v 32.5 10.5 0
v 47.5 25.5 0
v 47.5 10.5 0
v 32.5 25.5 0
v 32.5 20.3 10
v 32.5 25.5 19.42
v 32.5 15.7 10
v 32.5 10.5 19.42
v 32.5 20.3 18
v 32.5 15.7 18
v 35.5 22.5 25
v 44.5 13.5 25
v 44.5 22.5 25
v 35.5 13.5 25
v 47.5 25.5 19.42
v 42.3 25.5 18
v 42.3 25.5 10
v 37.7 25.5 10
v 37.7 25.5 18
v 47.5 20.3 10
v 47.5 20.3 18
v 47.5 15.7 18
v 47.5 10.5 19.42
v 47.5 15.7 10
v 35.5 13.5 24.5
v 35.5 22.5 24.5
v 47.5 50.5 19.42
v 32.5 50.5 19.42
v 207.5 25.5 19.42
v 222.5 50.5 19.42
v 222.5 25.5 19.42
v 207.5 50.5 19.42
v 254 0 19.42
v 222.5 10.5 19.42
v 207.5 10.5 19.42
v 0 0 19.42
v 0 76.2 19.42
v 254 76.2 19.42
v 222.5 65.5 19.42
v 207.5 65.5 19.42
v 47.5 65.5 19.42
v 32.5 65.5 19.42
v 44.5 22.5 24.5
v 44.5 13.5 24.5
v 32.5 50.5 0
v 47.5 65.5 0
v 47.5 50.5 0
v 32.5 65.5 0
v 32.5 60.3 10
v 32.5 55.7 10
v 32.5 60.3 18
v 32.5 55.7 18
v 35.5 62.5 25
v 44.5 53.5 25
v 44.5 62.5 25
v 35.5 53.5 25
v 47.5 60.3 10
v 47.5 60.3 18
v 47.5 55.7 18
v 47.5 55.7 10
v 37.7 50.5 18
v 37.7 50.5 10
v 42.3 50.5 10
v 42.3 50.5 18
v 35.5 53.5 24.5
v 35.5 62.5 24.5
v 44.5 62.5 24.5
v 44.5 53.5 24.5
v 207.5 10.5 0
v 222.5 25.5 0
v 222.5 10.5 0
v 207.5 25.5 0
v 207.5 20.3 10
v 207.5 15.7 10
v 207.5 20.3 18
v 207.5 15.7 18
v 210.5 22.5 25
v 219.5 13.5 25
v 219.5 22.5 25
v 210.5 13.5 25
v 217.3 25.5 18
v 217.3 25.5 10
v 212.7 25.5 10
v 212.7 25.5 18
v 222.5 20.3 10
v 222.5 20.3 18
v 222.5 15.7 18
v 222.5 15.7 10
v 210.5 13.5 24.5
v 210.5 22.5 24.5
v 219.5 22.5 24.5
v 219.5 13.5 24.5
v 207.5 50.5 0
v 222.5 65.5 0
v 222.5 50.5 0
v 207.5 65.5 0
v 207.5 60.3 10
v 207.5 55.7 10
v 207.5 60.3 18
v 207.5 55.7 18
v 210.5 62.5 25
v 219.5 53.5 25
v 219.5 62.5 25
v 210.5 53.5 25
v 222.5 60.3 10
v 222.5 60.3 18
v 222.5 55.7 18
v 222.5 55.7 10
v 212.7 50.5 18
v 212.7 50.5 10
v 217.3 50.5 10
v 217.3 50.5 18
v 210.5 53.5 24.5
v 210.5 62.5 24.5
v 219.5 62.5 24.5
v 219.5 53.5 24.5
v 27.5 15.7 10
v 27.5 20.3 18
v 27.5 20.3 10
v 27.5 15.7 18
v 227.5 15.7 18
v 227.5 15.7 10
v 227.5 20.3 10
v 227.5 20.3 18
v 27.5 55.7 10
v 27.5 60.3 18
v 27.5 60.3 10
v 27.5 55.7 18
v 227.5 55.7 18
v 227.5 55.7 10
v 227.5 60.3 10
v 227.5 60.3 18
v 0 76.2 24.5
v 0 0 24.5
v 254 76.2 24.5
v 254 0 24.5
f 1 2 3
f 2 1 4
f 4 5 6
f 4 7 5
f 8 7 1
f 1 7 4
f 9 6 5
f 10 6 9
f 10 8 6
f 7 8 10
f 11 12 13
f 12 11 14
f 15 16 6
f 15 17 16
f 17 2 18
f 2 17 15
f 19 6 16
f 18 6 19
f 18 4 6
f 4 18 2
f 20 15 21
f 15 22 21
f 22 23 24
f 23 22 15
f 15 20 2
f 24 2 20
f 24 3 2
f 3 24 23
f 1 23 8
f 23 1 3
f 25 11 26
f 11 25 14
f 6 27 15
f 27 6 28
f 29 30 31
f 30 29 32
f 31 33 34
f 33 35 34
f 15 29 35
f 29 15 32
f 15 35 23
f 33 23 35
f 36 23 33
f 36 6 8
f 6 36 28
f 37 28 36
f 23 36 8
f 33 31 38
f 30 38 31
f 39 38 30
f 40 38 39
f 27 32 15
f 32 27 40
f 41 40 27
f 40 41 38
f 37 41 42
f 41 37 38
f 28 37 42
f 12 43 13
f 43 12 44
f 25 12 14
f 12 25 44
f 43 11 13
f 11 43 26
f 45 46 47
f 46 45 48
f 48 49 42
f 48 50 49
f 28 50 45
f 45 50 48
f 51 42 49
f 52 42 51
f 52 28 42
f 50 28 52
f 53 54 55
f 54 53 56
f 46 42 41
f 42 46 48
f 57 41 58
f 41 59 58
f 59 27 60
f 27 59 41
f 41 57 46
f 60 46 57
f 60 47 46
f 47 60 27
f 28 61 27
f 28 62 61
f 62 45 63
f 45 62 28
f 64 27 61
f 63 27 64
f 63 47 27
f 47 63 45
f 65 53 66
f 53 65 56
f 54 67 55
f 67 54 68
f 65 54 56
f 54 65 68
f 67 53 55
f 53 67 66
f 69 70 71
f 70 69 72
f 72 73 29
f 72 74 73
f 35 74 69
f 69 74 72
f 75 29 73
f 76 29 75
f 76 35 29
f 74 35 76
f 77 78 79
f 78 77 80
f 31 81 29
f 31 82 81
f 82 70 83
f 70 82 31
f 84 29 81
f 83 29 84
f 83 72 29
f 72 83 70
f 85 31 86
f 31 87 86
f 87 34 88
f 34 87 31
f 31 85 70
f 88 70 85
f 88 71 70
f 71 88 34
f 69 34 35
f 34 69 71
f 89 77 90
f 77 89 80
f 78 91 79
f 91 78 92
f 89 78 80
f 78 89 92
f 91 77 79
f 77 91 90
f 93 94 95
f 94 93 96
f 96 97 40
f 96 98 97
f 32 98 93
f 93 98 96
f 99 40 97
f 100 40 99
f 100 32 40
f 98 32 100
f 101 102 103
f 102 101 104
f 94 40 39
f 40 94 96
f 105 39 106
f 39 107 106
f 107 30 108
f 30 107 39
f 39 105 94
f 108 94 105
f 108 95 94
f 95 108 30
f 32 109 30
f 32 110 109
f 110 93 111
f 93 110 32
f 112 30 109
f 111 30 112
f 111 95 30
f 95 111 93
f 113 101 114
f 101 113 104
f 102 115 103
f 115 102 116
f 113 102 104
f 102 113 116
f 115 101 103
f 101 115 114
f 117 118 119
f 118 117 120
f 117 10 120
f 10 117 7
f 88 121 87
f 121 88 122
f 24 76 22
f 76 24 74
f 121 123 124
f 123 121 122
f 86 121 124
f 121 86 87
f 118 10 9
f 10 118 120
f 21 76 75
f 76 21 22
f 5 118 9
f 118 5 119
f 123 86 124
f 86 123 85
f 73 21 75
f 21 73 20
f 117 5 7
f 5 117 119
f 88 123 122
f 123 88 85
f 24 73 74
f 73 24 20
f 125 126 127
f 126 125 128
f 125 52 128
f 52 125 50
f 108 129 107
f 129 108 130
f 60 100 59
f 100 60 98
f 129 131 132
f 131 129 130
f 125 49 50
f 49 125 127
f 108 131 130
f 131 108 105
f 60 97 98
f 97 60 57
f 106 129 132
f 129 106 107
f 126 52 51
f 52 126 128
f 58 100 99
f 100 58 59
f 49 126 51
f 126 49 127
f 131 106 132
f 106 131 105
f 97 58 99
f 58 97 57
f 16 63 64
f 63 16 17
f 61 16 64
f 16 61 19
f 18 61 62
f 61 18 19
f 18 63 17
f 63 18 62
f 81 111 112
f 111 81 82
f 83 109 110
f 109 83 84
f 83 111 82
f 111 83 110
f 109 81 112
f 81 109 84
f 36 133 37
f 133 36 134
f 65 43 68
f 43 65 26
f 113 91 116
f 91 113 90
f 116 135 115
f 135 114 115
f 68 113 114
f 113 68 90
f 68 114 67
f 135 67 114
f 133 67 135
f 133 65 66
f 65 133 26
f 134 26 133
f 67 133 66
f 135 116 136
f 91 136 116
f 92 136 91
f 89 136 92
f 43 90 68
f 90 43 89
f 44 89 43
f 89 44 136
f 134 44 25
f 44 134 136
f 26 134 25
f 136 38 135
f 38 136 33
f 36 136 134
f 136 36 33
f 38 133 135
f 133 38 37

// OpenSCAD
// file: common/board.scad
// board.scad

BOARD_DEFAULT_LENGTH = 600;
BOARD_DEFAULT_WIDTH = 120;
BOARD_DEFAULT_THICKNESS = 120;

function board_get_default_size()
    = [BOARD_DEFAULT_LENGTH, BOARD_DEFAULT_WIDTH, BOARD_DEFAULT_THICKNESS];

module board(size = board_get_default_size(), center = false)
{
    // size[0] is always with the grain
    // size[1] is against the grain
    // size[2] is the board thickness
    cube(size = size, center = center);
}
// main file
/**
 * @file slab_table.scad
 * @brief TODO.
 *
 * units: centimeter
 *
 * TODO:
 * - slab poly instead of square board
 *
 */

/* [Hidden] */
VISUAL_OVERRUN = 0.1;

/* [Configuration] */
UNITS = "cm"; // [cm]
COLOR = true;
TENON_OVERRUN = 0.5;
POST_TENON_CUTOUT_SIZE = 3.0;
SUPPORT_BEAM_TENON_OVERRUN = 5.0;
SUPPORT_BEAM_MINOR_TENON_LENGTH = 3.0;

/* [Board Dimensions] */
SLAB_LENGTH = 254.0;
SLAB_WIDTH = 76.2;
SLAB_THICKNESS = 5.08;
POST_LENGTH = 25.0;
POST_WIDTH = 15.0;
POST_THICKNESS = 15.0;
SUPPORT_BEAM_WIDTH = 8.0;
SUPPORT_BEAM_THICKNESS = 4.6;

/* [Layout] */
// X offset of post center
POST_MAJOR_OFFSET = 40.0;
// Y offset of post center
POST_MINOR_OFFSET = 18.0;
// X distance from post center to post center
POST_MAJOR_DIST = 175.0;
// Y distance from post center to post center
POST_MINOR_DIST = 40.0;
// Z height of the base of the support beams
SUPPORT_BEAM_HEIGHT = 10.0;

use <common/board.scad>

function post_size() = [POST_LENGTH, POST_WIDTH, POST_THICKNESS];

function major_support_beam_size() = [
    POST_THICKNESS
        + POST_MAJOR_DIST
        + (2 * SUPPORT_BEAM_TENON_OVERRUN),
    SUPPORT_BEAM_WIDTH,
    SUPPORT_BEAM_THICKNESS];

function minor_support_beam_size() = [
    POST_MINOR_DIST
        - POST_WIDTH
        + (2 * SUPPORT_BEAM_MINOR_TENON_LENGTH),
    SUPPORT_BEAM_WIDTH,
    SUPPORT_BEAM_THICKNESS];

function slab_size() = [SLAB_LENGTH, SLAB_WIDTH, SLAB_THICKNESS];

module post_board()
{
    translate([POST_THICKNESS, 0, 0])
        rotate([0, -90, 0])
            board(post_size());
}

module post()
{
    assert(POST_TENON_CUTOUT_SIZE >= 0);
    assert(POST_TENON_CUTOUT_SIZE < (POST_WIDTH / 2));

    tenon_depth = SLAB_THICKNESS + TENON_OVERRUN;

    offset_z = POST_LENGTH - tenon_depth;
    offset_y1 = -VISUAL_OVERRUN;
    offset_y2 = POST_WIDTH - POST_TENON_CUTOUT_SIZE;
    offset_x1 = -VISUAL_OVERRUN;
    offset_x2 = POST_THICKNESS - POST_TENON_CUTOUT_SIZE;

    cutout_a = [
            POST_TENON_CUTOUT_SIZE
                + VISUAL_OVERRUN,
            POST_WIDTH
                + (2 * VISUAL_OVERRUN),
            tenon_depth
                + VISUAL_OVERRUN];

    cutout_b = [
            POST_THICKNESS
                + (2 * VISUAL_OVERRUN),
            POST_TENON_CUTOUT_SIZE
                + VISUAL_OVERRUN,
            tenon_depth
                + VISUAL_OVERRUN];

    difference()
    {
        post_board();

        translate([offset_x1, offset_y1, offset_z])
            cube(cutout_a, center = false);
        translate([offset_x2, offset_y1, offset_z])
            cube(cutout_a, center = false);
        translate([offset_x1, offset_y1, offset_z])
            cube(cutout_b, center = false);
        translate([offset_x1, offset_y2, offset_z])
            cube(cutout_b, center = false);
    }
}

module posts_assembly()
{
    assert(POST_MAJOR_DIST >= 0);
    assert(POST_MINOR_DIST >= 0);

    offset_a = [
            -(POST_THICKNESS / 2)
                + POST_MAJOR_OFFSET,
            -(POST_WIDTH / 2)
                + POST_MINOR_OFFSET,
            0];

    offset_b = [
            -(POST_THICKNESS / 2)
                + POST_MAJOR_OFFSET,
            -(POST_WIDTH / 2)
                + POST_MINOR_OFFSET
                + POST_MINOR_DIST,
            0];

    offset_c = [
            -(POST_THICKNESS / 2)
                + POST_MAJOR_OFFSET
                + POST_MAJOR_DIST,
            -(POST_WIDTH / 2)
                + POST_MINOR_OFFSET,
            0];

    offset_d = [
            -(POST_THICKNESS / 2)
                + POST_MAJOR_OFFSET
                + POST_MAJOR_DIST,
            -(POST_WIDTH / 2)
                + POST_MINOR_OFFSET
                + POST_MINOR_DIST,
            0];

    translate(offset_a)
        post();
    translate(offset_b)
        post();
    translate(offset_c)
        post();
    translate(offset_d)
        post();
}

module major_support_beam_board()
{
    translate([0, SUPPORT_BEAM_THICKNESS, 0])
        rotate([90, 0, 0])
            board(major_support_beam_size());
}

module major_support_assembly()
{
    offset_a = [
            -(POST_THICKNESS / 2)
                + POST_MAJOR_OFFSET
                - SUPPORT_BEAM_TENON_OVERRUN,
            POST_MINOR_OFFSET
                - (SUPPORT_BEAM_THICKNESS / 2),
            SUPPORT_BEAM_HEIGHT];

    offset_b = [
            -(POST_THICKNESS / 2)
                + POST_MAJOR_OFFSET
                - SUPPORT_BEAM_TENON_OVERRUN,
            POST_MINOR_OFFSET
                - (SUPPORT_BEAM_THICKNESS / 2)
                + POST_MINOR_DIST,
            SUPPORT_BEAM_HEIGHT];

    translate(offset_a)
        major_support_beam_board();
    translate(offset_b)
        major_support_beam_board();
}

module minor_support_beam_board()
{
    rotate([90, 0, 90])
        board(minor_support_beam_size());
}

module minor_support_assembly()
{
    offset_a = [
            POST_MAJOR_OFFSET
                - (SUPPORT_BEAM_THICKNESS / 2),
            POST_MINOR_OFFSET
                + (POST_WIDTH / 2)
                - SUPPORT_BEAM_MINOR_TENON_LENGTH,
            SUPPORT_BEAM_HEIGHT];

    offset_b = [
            POST_MAJOR_OFFSET
                - (SUPPORT_BEAM_THICKNESS / 2)
                + POST_MAJOR_DIST,
            POST_MINOR_OFFSET
                + (POST_WIDTH / 2)
                - SUPPORT_BEAM_MINOR_TENON_LENGTH,
            SUPPORT_BEAM_HEIGHT];

    translate(offset_a)
        minor_support_beam_board();
    translate(offset_b)
        minor_support_beam_board();
}

module slab_board()
{
    board(slab_size());
}

module slab()
{
    translate([0, 0, POST_LENGTH - SLAB_THICKNESS - TENON_OVERRUN])
        slab_board();
}

module slab_table()
{
    if(COLOR == true)
    {
        color("NavajoWhite")
            slab();
        color("SandyBrown")
            posts_assembly();
        color("SaddleBrown")
        {
            major_support_assembly();
            minor_support_assembly();
        }
    }
    else
    {
        slab();
        posts_assembly();
        major_support_assembly();
        minor_support_assembly();
    }
}

slab_table();
